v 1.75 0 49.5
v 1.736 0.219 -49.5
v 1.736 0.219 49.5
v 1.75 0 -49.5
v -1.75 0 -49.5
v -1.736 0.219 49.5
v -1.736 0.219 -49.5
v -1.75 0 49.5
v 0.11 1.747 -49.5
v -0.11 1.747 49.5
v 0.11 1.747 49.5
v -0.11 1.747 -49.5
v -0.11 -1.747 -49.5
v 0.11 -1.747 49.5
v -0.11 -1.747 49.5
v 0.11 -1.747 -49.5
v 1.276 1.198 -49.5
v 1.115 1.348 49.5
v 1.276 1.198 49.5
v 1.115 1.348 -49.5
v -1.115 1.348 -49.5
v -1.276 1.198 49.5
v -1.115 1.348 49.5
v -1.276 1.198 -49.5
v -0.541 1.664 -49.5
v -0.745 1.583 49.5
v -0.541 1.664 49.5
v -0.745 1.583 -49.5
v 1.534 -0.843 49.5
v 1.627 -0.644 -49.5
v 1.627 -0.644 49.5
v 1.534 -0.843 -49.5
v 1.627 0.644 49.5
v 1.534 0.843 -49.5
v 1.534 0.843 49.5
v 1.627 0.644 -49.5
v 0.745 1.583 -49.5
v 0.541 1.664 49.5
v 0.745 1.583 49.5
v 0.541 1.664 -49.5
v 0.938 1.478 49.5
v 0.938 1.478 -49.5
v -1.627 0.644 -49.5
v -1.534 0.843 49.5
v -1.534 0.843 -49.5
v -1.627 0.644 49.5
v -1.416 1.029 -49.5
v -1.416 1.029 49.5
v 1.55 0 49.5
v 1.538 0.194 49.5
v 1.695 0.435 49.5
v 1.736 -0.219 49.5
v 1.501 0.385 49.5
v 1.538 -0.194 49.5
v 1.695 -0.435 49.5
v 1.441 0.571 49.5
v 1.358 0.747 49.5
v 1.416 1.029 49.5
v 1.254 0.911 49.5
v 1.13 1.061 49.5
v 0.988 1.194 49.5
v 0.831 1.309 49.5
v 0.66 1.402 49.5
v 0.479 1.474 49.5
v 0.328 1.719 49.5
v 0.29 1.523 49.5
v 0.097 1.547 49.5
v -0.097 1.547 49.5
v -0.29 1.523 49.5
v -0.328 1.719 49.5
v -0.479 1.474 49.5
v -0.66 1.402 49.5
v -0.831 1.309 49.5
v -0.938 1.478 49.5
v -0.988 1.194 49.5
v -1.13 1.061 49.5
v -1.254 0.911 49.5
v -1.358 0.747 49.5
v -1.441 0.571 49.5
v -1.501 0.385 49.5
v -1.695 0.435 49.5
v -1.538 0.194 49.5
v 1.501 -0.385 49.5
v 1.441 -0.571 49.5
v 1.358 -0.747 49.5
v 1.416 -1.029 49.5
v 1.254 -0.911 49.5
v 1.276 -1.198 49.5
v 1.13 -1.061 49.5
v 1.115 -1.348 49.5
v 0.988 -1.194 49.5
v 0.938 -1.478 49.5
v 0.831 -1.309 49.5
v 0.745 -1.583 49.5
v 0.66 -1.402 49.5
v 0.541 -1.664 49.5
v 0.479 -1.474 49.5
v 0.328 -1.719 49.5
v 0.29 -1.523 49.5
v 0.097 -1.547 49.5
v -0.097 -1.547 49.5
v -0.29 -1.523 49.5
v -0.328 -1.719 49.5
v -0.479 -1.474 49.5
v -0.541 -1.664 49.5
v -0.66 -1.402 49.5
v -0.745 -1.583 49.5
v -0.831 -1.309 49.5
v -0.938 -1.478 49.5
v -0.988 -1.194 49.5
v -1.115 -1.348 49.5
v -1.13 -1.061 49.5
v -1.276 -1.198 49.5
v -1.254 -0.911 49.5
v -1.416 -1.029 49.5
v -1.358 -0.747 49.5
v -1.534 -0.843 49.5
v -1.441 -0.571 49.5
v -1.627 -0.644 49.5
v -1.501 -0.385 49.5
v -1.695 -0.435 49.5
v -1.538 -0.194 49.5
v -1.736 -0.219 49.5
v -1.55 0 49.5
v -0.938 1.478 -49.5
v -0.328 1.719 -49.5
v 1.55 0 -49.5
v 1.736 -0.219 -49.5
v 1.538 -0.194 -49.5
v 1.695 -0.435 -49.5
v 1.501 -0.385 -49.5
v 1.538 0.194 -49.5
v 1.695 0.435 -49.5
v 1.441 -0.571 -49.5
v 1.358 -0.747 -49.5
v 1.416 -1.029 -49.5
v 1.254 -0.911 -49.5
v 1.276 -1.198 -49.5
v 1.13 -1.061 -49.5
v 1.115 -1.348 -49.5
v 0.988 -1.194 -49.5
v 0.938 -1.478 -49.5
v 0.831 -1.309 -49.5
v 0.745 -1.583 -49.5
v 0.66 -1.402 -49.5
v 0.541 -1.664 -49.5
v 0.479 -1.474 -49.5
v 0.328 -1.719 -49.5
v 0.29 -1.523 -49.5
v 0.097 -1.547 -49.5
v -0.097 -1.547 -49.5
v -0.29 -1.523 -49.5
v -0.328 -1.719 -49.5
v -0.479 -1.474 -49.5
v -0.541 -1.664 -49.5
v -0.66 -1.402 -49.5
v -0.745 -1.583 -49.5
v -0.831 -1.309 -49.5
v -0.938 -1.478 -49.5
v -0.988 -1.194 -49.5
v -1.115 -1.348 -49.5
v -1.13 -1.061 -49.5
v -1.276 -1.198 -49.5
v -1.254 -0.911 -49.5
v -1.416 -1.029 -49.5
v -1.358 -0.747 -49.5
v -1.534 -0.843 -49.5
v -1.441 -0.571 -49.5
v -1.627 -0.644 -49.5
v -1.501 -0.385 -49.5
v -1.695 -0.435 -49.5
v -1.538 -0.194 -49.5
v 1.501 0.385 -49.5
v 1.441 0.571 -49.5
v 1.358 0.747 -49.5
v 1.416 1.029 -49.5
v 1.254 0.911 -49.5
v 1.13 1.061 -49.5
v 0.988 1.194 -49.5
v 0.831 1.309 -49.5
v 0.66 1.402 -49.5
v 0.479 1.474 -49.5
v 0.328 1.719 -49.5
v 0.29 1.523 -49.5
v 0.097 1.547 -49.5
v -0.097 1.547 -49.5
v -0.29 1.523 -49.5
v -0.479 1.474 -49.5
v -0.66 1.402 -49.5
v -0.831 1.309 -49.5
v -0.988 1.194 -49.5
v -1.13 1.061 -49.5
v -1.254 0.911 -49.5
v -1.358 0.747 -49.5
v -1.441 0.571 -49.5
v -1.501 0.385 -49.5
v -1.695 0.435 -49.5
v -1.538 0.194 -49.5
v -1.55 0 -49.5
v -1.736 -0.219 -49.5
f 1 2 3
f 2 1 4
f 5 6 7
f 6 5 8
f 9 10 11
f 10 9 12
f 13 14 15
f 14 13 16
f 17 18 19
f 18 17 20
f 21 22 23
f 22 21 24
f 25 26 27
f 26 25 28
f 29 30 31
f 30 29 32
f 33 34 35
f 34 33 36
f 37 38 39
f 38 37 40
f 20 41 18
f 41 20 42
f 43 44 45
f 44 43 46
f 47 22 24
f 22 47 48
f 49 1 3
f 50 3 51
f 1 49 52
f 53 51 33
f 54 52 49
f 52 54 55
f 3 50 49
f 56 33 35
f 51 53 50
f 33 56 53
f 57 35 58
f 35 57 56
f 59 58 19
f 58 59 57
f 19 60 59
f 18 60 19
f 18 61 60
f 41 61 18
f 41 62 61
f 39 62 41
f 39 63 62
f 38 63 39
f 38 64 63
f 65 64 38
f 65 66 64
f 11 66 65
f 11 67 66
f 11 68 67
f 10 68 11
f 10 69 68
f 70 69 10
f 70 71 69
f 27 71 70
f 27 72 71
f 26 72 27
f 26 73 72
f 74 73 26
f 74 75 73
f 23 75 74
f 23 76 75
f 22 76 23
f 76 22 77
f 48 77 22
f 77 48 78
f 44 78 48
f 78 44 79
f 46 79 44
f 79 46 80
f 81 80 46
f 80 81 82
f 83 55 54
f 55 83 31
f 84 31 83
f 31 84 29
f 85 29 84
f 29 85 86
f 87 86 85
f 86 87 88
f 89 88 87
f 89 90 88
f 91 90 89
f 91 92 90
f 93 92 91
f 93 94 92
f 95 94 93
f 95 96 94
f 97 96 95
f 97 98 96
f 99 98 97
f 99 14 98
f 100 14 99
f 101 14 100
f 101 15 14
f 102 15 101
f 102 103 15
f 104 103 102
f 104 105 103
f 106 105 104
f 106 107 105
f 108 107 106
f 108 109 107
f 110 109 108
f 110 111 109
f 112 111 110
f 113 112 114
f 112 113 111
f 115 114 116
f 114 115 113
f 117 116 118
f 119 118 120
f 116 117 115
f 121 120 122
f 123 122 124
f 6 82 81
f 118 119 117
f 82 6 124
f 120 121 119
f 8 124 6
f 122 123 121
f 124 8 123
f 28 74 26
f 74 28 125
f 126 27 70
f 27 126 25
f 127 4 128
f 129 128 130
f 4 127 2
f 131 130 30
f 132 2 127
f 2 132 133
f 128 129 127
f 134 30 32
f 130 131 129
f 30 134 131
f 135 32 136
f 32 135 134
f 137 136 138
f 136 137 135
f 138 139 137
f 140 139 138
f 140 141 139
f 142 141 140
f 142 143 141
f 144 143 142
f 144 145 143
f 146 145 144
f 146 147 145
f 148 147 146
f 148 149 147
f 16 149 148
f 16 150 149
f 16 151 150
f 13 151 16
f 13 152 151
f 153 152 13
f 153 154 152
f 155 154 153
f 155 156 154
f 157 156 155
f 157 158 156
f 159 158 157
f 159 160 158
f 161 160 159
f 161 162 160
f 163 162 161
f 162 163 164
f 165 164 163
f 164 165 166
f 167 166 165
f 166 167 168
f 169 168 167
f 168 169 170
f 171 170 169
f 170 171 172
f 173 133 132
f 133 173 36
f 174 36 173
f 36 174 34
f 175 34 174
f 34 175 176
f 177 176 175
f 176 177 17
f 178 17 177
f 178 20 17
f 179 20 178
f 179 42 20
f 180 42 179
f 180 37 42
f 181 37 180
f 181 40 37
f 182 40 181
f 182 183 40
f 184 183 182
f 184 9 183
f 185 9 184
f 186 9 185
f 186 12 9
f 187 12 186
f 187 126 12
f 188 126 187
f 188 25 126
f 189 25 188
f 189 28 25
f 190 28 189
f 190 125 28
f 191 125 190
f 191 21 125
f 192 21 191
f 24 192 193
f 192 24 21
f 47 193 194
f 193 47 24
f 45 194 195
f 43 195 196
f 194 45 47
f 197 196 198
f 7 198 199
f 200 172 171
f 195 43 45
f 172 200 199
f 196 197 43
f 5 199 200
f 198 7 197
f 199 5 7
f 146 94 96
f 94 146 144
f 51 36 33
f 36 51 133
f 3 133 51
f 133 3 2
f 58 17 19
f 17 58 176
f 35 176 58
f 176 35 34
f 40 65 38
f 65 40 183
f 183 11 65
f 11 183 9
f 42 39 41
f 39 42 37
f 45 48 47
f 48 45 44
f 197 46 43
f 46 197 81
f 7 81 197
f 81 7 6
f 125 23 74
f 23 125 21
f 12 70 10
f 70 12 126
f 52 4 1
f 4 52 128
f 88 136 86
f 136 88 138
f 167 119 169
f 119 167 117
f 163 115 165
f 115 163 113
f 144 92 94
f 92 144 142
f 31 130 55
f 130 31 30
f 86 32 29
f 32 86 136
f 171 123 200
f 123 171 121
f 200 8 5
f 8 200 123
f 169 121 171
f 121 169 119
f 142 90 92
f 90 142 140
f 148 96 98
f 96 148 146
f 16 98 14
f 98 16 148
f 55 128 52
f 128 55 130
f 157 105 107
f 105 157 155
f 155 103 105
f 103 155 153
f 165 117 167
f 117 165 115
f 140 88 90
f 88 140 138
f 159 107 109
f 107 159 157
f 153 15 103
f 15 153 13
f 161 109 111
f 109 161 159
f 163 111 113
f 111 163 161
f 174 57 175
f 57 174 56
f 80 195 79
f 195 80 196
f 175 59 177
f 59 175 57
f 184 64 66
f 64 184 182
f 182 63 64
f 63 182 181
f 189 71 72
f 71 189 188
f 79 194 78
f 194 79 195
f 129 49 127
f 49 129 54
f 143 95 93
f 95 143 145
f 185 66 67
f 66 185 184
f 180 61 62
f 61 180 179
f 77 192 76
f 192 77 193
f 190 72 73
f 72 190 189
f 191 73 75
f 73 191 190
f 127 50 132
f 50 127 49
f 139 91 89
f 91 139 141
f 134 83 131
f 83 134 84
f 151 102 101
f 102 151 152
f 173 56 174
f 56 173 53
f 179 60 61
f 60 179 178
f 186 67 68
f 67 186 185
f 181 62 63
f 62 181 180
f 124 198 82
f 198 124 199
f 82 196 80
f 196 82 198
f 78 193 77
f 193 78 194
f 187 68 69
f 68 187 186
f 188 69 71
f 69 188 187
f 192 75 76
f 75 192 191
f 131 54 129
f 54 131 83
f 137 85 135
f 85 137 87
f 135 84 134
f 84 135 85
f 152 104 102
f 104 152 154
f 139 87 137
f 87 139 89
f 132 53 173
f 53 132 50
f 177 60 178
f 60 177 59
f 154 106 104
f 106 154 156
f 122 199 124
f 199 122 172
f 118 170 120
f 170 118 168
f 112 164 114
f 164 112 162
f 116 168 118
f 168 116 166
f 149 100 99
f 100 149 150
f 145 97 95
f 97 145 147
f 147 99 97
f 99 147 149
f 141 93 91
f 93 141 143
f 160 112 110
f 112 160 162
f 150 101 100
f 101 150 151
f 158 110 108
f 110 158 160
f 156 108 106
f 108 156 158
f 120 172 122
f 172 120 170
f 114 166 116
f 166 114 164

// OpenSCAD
$fn = 50;


difference() {
	union() {
		translate(v = [0, 0, -49.5000000000]) {
			cylinder(h = 99, r = 1.7500000000);
		}
	}
	union() {
		translate(v = [0, 0, -100.0000000000]) {
			cylinder(h = 200, r = 1.5500000000);
		}
	}
}
